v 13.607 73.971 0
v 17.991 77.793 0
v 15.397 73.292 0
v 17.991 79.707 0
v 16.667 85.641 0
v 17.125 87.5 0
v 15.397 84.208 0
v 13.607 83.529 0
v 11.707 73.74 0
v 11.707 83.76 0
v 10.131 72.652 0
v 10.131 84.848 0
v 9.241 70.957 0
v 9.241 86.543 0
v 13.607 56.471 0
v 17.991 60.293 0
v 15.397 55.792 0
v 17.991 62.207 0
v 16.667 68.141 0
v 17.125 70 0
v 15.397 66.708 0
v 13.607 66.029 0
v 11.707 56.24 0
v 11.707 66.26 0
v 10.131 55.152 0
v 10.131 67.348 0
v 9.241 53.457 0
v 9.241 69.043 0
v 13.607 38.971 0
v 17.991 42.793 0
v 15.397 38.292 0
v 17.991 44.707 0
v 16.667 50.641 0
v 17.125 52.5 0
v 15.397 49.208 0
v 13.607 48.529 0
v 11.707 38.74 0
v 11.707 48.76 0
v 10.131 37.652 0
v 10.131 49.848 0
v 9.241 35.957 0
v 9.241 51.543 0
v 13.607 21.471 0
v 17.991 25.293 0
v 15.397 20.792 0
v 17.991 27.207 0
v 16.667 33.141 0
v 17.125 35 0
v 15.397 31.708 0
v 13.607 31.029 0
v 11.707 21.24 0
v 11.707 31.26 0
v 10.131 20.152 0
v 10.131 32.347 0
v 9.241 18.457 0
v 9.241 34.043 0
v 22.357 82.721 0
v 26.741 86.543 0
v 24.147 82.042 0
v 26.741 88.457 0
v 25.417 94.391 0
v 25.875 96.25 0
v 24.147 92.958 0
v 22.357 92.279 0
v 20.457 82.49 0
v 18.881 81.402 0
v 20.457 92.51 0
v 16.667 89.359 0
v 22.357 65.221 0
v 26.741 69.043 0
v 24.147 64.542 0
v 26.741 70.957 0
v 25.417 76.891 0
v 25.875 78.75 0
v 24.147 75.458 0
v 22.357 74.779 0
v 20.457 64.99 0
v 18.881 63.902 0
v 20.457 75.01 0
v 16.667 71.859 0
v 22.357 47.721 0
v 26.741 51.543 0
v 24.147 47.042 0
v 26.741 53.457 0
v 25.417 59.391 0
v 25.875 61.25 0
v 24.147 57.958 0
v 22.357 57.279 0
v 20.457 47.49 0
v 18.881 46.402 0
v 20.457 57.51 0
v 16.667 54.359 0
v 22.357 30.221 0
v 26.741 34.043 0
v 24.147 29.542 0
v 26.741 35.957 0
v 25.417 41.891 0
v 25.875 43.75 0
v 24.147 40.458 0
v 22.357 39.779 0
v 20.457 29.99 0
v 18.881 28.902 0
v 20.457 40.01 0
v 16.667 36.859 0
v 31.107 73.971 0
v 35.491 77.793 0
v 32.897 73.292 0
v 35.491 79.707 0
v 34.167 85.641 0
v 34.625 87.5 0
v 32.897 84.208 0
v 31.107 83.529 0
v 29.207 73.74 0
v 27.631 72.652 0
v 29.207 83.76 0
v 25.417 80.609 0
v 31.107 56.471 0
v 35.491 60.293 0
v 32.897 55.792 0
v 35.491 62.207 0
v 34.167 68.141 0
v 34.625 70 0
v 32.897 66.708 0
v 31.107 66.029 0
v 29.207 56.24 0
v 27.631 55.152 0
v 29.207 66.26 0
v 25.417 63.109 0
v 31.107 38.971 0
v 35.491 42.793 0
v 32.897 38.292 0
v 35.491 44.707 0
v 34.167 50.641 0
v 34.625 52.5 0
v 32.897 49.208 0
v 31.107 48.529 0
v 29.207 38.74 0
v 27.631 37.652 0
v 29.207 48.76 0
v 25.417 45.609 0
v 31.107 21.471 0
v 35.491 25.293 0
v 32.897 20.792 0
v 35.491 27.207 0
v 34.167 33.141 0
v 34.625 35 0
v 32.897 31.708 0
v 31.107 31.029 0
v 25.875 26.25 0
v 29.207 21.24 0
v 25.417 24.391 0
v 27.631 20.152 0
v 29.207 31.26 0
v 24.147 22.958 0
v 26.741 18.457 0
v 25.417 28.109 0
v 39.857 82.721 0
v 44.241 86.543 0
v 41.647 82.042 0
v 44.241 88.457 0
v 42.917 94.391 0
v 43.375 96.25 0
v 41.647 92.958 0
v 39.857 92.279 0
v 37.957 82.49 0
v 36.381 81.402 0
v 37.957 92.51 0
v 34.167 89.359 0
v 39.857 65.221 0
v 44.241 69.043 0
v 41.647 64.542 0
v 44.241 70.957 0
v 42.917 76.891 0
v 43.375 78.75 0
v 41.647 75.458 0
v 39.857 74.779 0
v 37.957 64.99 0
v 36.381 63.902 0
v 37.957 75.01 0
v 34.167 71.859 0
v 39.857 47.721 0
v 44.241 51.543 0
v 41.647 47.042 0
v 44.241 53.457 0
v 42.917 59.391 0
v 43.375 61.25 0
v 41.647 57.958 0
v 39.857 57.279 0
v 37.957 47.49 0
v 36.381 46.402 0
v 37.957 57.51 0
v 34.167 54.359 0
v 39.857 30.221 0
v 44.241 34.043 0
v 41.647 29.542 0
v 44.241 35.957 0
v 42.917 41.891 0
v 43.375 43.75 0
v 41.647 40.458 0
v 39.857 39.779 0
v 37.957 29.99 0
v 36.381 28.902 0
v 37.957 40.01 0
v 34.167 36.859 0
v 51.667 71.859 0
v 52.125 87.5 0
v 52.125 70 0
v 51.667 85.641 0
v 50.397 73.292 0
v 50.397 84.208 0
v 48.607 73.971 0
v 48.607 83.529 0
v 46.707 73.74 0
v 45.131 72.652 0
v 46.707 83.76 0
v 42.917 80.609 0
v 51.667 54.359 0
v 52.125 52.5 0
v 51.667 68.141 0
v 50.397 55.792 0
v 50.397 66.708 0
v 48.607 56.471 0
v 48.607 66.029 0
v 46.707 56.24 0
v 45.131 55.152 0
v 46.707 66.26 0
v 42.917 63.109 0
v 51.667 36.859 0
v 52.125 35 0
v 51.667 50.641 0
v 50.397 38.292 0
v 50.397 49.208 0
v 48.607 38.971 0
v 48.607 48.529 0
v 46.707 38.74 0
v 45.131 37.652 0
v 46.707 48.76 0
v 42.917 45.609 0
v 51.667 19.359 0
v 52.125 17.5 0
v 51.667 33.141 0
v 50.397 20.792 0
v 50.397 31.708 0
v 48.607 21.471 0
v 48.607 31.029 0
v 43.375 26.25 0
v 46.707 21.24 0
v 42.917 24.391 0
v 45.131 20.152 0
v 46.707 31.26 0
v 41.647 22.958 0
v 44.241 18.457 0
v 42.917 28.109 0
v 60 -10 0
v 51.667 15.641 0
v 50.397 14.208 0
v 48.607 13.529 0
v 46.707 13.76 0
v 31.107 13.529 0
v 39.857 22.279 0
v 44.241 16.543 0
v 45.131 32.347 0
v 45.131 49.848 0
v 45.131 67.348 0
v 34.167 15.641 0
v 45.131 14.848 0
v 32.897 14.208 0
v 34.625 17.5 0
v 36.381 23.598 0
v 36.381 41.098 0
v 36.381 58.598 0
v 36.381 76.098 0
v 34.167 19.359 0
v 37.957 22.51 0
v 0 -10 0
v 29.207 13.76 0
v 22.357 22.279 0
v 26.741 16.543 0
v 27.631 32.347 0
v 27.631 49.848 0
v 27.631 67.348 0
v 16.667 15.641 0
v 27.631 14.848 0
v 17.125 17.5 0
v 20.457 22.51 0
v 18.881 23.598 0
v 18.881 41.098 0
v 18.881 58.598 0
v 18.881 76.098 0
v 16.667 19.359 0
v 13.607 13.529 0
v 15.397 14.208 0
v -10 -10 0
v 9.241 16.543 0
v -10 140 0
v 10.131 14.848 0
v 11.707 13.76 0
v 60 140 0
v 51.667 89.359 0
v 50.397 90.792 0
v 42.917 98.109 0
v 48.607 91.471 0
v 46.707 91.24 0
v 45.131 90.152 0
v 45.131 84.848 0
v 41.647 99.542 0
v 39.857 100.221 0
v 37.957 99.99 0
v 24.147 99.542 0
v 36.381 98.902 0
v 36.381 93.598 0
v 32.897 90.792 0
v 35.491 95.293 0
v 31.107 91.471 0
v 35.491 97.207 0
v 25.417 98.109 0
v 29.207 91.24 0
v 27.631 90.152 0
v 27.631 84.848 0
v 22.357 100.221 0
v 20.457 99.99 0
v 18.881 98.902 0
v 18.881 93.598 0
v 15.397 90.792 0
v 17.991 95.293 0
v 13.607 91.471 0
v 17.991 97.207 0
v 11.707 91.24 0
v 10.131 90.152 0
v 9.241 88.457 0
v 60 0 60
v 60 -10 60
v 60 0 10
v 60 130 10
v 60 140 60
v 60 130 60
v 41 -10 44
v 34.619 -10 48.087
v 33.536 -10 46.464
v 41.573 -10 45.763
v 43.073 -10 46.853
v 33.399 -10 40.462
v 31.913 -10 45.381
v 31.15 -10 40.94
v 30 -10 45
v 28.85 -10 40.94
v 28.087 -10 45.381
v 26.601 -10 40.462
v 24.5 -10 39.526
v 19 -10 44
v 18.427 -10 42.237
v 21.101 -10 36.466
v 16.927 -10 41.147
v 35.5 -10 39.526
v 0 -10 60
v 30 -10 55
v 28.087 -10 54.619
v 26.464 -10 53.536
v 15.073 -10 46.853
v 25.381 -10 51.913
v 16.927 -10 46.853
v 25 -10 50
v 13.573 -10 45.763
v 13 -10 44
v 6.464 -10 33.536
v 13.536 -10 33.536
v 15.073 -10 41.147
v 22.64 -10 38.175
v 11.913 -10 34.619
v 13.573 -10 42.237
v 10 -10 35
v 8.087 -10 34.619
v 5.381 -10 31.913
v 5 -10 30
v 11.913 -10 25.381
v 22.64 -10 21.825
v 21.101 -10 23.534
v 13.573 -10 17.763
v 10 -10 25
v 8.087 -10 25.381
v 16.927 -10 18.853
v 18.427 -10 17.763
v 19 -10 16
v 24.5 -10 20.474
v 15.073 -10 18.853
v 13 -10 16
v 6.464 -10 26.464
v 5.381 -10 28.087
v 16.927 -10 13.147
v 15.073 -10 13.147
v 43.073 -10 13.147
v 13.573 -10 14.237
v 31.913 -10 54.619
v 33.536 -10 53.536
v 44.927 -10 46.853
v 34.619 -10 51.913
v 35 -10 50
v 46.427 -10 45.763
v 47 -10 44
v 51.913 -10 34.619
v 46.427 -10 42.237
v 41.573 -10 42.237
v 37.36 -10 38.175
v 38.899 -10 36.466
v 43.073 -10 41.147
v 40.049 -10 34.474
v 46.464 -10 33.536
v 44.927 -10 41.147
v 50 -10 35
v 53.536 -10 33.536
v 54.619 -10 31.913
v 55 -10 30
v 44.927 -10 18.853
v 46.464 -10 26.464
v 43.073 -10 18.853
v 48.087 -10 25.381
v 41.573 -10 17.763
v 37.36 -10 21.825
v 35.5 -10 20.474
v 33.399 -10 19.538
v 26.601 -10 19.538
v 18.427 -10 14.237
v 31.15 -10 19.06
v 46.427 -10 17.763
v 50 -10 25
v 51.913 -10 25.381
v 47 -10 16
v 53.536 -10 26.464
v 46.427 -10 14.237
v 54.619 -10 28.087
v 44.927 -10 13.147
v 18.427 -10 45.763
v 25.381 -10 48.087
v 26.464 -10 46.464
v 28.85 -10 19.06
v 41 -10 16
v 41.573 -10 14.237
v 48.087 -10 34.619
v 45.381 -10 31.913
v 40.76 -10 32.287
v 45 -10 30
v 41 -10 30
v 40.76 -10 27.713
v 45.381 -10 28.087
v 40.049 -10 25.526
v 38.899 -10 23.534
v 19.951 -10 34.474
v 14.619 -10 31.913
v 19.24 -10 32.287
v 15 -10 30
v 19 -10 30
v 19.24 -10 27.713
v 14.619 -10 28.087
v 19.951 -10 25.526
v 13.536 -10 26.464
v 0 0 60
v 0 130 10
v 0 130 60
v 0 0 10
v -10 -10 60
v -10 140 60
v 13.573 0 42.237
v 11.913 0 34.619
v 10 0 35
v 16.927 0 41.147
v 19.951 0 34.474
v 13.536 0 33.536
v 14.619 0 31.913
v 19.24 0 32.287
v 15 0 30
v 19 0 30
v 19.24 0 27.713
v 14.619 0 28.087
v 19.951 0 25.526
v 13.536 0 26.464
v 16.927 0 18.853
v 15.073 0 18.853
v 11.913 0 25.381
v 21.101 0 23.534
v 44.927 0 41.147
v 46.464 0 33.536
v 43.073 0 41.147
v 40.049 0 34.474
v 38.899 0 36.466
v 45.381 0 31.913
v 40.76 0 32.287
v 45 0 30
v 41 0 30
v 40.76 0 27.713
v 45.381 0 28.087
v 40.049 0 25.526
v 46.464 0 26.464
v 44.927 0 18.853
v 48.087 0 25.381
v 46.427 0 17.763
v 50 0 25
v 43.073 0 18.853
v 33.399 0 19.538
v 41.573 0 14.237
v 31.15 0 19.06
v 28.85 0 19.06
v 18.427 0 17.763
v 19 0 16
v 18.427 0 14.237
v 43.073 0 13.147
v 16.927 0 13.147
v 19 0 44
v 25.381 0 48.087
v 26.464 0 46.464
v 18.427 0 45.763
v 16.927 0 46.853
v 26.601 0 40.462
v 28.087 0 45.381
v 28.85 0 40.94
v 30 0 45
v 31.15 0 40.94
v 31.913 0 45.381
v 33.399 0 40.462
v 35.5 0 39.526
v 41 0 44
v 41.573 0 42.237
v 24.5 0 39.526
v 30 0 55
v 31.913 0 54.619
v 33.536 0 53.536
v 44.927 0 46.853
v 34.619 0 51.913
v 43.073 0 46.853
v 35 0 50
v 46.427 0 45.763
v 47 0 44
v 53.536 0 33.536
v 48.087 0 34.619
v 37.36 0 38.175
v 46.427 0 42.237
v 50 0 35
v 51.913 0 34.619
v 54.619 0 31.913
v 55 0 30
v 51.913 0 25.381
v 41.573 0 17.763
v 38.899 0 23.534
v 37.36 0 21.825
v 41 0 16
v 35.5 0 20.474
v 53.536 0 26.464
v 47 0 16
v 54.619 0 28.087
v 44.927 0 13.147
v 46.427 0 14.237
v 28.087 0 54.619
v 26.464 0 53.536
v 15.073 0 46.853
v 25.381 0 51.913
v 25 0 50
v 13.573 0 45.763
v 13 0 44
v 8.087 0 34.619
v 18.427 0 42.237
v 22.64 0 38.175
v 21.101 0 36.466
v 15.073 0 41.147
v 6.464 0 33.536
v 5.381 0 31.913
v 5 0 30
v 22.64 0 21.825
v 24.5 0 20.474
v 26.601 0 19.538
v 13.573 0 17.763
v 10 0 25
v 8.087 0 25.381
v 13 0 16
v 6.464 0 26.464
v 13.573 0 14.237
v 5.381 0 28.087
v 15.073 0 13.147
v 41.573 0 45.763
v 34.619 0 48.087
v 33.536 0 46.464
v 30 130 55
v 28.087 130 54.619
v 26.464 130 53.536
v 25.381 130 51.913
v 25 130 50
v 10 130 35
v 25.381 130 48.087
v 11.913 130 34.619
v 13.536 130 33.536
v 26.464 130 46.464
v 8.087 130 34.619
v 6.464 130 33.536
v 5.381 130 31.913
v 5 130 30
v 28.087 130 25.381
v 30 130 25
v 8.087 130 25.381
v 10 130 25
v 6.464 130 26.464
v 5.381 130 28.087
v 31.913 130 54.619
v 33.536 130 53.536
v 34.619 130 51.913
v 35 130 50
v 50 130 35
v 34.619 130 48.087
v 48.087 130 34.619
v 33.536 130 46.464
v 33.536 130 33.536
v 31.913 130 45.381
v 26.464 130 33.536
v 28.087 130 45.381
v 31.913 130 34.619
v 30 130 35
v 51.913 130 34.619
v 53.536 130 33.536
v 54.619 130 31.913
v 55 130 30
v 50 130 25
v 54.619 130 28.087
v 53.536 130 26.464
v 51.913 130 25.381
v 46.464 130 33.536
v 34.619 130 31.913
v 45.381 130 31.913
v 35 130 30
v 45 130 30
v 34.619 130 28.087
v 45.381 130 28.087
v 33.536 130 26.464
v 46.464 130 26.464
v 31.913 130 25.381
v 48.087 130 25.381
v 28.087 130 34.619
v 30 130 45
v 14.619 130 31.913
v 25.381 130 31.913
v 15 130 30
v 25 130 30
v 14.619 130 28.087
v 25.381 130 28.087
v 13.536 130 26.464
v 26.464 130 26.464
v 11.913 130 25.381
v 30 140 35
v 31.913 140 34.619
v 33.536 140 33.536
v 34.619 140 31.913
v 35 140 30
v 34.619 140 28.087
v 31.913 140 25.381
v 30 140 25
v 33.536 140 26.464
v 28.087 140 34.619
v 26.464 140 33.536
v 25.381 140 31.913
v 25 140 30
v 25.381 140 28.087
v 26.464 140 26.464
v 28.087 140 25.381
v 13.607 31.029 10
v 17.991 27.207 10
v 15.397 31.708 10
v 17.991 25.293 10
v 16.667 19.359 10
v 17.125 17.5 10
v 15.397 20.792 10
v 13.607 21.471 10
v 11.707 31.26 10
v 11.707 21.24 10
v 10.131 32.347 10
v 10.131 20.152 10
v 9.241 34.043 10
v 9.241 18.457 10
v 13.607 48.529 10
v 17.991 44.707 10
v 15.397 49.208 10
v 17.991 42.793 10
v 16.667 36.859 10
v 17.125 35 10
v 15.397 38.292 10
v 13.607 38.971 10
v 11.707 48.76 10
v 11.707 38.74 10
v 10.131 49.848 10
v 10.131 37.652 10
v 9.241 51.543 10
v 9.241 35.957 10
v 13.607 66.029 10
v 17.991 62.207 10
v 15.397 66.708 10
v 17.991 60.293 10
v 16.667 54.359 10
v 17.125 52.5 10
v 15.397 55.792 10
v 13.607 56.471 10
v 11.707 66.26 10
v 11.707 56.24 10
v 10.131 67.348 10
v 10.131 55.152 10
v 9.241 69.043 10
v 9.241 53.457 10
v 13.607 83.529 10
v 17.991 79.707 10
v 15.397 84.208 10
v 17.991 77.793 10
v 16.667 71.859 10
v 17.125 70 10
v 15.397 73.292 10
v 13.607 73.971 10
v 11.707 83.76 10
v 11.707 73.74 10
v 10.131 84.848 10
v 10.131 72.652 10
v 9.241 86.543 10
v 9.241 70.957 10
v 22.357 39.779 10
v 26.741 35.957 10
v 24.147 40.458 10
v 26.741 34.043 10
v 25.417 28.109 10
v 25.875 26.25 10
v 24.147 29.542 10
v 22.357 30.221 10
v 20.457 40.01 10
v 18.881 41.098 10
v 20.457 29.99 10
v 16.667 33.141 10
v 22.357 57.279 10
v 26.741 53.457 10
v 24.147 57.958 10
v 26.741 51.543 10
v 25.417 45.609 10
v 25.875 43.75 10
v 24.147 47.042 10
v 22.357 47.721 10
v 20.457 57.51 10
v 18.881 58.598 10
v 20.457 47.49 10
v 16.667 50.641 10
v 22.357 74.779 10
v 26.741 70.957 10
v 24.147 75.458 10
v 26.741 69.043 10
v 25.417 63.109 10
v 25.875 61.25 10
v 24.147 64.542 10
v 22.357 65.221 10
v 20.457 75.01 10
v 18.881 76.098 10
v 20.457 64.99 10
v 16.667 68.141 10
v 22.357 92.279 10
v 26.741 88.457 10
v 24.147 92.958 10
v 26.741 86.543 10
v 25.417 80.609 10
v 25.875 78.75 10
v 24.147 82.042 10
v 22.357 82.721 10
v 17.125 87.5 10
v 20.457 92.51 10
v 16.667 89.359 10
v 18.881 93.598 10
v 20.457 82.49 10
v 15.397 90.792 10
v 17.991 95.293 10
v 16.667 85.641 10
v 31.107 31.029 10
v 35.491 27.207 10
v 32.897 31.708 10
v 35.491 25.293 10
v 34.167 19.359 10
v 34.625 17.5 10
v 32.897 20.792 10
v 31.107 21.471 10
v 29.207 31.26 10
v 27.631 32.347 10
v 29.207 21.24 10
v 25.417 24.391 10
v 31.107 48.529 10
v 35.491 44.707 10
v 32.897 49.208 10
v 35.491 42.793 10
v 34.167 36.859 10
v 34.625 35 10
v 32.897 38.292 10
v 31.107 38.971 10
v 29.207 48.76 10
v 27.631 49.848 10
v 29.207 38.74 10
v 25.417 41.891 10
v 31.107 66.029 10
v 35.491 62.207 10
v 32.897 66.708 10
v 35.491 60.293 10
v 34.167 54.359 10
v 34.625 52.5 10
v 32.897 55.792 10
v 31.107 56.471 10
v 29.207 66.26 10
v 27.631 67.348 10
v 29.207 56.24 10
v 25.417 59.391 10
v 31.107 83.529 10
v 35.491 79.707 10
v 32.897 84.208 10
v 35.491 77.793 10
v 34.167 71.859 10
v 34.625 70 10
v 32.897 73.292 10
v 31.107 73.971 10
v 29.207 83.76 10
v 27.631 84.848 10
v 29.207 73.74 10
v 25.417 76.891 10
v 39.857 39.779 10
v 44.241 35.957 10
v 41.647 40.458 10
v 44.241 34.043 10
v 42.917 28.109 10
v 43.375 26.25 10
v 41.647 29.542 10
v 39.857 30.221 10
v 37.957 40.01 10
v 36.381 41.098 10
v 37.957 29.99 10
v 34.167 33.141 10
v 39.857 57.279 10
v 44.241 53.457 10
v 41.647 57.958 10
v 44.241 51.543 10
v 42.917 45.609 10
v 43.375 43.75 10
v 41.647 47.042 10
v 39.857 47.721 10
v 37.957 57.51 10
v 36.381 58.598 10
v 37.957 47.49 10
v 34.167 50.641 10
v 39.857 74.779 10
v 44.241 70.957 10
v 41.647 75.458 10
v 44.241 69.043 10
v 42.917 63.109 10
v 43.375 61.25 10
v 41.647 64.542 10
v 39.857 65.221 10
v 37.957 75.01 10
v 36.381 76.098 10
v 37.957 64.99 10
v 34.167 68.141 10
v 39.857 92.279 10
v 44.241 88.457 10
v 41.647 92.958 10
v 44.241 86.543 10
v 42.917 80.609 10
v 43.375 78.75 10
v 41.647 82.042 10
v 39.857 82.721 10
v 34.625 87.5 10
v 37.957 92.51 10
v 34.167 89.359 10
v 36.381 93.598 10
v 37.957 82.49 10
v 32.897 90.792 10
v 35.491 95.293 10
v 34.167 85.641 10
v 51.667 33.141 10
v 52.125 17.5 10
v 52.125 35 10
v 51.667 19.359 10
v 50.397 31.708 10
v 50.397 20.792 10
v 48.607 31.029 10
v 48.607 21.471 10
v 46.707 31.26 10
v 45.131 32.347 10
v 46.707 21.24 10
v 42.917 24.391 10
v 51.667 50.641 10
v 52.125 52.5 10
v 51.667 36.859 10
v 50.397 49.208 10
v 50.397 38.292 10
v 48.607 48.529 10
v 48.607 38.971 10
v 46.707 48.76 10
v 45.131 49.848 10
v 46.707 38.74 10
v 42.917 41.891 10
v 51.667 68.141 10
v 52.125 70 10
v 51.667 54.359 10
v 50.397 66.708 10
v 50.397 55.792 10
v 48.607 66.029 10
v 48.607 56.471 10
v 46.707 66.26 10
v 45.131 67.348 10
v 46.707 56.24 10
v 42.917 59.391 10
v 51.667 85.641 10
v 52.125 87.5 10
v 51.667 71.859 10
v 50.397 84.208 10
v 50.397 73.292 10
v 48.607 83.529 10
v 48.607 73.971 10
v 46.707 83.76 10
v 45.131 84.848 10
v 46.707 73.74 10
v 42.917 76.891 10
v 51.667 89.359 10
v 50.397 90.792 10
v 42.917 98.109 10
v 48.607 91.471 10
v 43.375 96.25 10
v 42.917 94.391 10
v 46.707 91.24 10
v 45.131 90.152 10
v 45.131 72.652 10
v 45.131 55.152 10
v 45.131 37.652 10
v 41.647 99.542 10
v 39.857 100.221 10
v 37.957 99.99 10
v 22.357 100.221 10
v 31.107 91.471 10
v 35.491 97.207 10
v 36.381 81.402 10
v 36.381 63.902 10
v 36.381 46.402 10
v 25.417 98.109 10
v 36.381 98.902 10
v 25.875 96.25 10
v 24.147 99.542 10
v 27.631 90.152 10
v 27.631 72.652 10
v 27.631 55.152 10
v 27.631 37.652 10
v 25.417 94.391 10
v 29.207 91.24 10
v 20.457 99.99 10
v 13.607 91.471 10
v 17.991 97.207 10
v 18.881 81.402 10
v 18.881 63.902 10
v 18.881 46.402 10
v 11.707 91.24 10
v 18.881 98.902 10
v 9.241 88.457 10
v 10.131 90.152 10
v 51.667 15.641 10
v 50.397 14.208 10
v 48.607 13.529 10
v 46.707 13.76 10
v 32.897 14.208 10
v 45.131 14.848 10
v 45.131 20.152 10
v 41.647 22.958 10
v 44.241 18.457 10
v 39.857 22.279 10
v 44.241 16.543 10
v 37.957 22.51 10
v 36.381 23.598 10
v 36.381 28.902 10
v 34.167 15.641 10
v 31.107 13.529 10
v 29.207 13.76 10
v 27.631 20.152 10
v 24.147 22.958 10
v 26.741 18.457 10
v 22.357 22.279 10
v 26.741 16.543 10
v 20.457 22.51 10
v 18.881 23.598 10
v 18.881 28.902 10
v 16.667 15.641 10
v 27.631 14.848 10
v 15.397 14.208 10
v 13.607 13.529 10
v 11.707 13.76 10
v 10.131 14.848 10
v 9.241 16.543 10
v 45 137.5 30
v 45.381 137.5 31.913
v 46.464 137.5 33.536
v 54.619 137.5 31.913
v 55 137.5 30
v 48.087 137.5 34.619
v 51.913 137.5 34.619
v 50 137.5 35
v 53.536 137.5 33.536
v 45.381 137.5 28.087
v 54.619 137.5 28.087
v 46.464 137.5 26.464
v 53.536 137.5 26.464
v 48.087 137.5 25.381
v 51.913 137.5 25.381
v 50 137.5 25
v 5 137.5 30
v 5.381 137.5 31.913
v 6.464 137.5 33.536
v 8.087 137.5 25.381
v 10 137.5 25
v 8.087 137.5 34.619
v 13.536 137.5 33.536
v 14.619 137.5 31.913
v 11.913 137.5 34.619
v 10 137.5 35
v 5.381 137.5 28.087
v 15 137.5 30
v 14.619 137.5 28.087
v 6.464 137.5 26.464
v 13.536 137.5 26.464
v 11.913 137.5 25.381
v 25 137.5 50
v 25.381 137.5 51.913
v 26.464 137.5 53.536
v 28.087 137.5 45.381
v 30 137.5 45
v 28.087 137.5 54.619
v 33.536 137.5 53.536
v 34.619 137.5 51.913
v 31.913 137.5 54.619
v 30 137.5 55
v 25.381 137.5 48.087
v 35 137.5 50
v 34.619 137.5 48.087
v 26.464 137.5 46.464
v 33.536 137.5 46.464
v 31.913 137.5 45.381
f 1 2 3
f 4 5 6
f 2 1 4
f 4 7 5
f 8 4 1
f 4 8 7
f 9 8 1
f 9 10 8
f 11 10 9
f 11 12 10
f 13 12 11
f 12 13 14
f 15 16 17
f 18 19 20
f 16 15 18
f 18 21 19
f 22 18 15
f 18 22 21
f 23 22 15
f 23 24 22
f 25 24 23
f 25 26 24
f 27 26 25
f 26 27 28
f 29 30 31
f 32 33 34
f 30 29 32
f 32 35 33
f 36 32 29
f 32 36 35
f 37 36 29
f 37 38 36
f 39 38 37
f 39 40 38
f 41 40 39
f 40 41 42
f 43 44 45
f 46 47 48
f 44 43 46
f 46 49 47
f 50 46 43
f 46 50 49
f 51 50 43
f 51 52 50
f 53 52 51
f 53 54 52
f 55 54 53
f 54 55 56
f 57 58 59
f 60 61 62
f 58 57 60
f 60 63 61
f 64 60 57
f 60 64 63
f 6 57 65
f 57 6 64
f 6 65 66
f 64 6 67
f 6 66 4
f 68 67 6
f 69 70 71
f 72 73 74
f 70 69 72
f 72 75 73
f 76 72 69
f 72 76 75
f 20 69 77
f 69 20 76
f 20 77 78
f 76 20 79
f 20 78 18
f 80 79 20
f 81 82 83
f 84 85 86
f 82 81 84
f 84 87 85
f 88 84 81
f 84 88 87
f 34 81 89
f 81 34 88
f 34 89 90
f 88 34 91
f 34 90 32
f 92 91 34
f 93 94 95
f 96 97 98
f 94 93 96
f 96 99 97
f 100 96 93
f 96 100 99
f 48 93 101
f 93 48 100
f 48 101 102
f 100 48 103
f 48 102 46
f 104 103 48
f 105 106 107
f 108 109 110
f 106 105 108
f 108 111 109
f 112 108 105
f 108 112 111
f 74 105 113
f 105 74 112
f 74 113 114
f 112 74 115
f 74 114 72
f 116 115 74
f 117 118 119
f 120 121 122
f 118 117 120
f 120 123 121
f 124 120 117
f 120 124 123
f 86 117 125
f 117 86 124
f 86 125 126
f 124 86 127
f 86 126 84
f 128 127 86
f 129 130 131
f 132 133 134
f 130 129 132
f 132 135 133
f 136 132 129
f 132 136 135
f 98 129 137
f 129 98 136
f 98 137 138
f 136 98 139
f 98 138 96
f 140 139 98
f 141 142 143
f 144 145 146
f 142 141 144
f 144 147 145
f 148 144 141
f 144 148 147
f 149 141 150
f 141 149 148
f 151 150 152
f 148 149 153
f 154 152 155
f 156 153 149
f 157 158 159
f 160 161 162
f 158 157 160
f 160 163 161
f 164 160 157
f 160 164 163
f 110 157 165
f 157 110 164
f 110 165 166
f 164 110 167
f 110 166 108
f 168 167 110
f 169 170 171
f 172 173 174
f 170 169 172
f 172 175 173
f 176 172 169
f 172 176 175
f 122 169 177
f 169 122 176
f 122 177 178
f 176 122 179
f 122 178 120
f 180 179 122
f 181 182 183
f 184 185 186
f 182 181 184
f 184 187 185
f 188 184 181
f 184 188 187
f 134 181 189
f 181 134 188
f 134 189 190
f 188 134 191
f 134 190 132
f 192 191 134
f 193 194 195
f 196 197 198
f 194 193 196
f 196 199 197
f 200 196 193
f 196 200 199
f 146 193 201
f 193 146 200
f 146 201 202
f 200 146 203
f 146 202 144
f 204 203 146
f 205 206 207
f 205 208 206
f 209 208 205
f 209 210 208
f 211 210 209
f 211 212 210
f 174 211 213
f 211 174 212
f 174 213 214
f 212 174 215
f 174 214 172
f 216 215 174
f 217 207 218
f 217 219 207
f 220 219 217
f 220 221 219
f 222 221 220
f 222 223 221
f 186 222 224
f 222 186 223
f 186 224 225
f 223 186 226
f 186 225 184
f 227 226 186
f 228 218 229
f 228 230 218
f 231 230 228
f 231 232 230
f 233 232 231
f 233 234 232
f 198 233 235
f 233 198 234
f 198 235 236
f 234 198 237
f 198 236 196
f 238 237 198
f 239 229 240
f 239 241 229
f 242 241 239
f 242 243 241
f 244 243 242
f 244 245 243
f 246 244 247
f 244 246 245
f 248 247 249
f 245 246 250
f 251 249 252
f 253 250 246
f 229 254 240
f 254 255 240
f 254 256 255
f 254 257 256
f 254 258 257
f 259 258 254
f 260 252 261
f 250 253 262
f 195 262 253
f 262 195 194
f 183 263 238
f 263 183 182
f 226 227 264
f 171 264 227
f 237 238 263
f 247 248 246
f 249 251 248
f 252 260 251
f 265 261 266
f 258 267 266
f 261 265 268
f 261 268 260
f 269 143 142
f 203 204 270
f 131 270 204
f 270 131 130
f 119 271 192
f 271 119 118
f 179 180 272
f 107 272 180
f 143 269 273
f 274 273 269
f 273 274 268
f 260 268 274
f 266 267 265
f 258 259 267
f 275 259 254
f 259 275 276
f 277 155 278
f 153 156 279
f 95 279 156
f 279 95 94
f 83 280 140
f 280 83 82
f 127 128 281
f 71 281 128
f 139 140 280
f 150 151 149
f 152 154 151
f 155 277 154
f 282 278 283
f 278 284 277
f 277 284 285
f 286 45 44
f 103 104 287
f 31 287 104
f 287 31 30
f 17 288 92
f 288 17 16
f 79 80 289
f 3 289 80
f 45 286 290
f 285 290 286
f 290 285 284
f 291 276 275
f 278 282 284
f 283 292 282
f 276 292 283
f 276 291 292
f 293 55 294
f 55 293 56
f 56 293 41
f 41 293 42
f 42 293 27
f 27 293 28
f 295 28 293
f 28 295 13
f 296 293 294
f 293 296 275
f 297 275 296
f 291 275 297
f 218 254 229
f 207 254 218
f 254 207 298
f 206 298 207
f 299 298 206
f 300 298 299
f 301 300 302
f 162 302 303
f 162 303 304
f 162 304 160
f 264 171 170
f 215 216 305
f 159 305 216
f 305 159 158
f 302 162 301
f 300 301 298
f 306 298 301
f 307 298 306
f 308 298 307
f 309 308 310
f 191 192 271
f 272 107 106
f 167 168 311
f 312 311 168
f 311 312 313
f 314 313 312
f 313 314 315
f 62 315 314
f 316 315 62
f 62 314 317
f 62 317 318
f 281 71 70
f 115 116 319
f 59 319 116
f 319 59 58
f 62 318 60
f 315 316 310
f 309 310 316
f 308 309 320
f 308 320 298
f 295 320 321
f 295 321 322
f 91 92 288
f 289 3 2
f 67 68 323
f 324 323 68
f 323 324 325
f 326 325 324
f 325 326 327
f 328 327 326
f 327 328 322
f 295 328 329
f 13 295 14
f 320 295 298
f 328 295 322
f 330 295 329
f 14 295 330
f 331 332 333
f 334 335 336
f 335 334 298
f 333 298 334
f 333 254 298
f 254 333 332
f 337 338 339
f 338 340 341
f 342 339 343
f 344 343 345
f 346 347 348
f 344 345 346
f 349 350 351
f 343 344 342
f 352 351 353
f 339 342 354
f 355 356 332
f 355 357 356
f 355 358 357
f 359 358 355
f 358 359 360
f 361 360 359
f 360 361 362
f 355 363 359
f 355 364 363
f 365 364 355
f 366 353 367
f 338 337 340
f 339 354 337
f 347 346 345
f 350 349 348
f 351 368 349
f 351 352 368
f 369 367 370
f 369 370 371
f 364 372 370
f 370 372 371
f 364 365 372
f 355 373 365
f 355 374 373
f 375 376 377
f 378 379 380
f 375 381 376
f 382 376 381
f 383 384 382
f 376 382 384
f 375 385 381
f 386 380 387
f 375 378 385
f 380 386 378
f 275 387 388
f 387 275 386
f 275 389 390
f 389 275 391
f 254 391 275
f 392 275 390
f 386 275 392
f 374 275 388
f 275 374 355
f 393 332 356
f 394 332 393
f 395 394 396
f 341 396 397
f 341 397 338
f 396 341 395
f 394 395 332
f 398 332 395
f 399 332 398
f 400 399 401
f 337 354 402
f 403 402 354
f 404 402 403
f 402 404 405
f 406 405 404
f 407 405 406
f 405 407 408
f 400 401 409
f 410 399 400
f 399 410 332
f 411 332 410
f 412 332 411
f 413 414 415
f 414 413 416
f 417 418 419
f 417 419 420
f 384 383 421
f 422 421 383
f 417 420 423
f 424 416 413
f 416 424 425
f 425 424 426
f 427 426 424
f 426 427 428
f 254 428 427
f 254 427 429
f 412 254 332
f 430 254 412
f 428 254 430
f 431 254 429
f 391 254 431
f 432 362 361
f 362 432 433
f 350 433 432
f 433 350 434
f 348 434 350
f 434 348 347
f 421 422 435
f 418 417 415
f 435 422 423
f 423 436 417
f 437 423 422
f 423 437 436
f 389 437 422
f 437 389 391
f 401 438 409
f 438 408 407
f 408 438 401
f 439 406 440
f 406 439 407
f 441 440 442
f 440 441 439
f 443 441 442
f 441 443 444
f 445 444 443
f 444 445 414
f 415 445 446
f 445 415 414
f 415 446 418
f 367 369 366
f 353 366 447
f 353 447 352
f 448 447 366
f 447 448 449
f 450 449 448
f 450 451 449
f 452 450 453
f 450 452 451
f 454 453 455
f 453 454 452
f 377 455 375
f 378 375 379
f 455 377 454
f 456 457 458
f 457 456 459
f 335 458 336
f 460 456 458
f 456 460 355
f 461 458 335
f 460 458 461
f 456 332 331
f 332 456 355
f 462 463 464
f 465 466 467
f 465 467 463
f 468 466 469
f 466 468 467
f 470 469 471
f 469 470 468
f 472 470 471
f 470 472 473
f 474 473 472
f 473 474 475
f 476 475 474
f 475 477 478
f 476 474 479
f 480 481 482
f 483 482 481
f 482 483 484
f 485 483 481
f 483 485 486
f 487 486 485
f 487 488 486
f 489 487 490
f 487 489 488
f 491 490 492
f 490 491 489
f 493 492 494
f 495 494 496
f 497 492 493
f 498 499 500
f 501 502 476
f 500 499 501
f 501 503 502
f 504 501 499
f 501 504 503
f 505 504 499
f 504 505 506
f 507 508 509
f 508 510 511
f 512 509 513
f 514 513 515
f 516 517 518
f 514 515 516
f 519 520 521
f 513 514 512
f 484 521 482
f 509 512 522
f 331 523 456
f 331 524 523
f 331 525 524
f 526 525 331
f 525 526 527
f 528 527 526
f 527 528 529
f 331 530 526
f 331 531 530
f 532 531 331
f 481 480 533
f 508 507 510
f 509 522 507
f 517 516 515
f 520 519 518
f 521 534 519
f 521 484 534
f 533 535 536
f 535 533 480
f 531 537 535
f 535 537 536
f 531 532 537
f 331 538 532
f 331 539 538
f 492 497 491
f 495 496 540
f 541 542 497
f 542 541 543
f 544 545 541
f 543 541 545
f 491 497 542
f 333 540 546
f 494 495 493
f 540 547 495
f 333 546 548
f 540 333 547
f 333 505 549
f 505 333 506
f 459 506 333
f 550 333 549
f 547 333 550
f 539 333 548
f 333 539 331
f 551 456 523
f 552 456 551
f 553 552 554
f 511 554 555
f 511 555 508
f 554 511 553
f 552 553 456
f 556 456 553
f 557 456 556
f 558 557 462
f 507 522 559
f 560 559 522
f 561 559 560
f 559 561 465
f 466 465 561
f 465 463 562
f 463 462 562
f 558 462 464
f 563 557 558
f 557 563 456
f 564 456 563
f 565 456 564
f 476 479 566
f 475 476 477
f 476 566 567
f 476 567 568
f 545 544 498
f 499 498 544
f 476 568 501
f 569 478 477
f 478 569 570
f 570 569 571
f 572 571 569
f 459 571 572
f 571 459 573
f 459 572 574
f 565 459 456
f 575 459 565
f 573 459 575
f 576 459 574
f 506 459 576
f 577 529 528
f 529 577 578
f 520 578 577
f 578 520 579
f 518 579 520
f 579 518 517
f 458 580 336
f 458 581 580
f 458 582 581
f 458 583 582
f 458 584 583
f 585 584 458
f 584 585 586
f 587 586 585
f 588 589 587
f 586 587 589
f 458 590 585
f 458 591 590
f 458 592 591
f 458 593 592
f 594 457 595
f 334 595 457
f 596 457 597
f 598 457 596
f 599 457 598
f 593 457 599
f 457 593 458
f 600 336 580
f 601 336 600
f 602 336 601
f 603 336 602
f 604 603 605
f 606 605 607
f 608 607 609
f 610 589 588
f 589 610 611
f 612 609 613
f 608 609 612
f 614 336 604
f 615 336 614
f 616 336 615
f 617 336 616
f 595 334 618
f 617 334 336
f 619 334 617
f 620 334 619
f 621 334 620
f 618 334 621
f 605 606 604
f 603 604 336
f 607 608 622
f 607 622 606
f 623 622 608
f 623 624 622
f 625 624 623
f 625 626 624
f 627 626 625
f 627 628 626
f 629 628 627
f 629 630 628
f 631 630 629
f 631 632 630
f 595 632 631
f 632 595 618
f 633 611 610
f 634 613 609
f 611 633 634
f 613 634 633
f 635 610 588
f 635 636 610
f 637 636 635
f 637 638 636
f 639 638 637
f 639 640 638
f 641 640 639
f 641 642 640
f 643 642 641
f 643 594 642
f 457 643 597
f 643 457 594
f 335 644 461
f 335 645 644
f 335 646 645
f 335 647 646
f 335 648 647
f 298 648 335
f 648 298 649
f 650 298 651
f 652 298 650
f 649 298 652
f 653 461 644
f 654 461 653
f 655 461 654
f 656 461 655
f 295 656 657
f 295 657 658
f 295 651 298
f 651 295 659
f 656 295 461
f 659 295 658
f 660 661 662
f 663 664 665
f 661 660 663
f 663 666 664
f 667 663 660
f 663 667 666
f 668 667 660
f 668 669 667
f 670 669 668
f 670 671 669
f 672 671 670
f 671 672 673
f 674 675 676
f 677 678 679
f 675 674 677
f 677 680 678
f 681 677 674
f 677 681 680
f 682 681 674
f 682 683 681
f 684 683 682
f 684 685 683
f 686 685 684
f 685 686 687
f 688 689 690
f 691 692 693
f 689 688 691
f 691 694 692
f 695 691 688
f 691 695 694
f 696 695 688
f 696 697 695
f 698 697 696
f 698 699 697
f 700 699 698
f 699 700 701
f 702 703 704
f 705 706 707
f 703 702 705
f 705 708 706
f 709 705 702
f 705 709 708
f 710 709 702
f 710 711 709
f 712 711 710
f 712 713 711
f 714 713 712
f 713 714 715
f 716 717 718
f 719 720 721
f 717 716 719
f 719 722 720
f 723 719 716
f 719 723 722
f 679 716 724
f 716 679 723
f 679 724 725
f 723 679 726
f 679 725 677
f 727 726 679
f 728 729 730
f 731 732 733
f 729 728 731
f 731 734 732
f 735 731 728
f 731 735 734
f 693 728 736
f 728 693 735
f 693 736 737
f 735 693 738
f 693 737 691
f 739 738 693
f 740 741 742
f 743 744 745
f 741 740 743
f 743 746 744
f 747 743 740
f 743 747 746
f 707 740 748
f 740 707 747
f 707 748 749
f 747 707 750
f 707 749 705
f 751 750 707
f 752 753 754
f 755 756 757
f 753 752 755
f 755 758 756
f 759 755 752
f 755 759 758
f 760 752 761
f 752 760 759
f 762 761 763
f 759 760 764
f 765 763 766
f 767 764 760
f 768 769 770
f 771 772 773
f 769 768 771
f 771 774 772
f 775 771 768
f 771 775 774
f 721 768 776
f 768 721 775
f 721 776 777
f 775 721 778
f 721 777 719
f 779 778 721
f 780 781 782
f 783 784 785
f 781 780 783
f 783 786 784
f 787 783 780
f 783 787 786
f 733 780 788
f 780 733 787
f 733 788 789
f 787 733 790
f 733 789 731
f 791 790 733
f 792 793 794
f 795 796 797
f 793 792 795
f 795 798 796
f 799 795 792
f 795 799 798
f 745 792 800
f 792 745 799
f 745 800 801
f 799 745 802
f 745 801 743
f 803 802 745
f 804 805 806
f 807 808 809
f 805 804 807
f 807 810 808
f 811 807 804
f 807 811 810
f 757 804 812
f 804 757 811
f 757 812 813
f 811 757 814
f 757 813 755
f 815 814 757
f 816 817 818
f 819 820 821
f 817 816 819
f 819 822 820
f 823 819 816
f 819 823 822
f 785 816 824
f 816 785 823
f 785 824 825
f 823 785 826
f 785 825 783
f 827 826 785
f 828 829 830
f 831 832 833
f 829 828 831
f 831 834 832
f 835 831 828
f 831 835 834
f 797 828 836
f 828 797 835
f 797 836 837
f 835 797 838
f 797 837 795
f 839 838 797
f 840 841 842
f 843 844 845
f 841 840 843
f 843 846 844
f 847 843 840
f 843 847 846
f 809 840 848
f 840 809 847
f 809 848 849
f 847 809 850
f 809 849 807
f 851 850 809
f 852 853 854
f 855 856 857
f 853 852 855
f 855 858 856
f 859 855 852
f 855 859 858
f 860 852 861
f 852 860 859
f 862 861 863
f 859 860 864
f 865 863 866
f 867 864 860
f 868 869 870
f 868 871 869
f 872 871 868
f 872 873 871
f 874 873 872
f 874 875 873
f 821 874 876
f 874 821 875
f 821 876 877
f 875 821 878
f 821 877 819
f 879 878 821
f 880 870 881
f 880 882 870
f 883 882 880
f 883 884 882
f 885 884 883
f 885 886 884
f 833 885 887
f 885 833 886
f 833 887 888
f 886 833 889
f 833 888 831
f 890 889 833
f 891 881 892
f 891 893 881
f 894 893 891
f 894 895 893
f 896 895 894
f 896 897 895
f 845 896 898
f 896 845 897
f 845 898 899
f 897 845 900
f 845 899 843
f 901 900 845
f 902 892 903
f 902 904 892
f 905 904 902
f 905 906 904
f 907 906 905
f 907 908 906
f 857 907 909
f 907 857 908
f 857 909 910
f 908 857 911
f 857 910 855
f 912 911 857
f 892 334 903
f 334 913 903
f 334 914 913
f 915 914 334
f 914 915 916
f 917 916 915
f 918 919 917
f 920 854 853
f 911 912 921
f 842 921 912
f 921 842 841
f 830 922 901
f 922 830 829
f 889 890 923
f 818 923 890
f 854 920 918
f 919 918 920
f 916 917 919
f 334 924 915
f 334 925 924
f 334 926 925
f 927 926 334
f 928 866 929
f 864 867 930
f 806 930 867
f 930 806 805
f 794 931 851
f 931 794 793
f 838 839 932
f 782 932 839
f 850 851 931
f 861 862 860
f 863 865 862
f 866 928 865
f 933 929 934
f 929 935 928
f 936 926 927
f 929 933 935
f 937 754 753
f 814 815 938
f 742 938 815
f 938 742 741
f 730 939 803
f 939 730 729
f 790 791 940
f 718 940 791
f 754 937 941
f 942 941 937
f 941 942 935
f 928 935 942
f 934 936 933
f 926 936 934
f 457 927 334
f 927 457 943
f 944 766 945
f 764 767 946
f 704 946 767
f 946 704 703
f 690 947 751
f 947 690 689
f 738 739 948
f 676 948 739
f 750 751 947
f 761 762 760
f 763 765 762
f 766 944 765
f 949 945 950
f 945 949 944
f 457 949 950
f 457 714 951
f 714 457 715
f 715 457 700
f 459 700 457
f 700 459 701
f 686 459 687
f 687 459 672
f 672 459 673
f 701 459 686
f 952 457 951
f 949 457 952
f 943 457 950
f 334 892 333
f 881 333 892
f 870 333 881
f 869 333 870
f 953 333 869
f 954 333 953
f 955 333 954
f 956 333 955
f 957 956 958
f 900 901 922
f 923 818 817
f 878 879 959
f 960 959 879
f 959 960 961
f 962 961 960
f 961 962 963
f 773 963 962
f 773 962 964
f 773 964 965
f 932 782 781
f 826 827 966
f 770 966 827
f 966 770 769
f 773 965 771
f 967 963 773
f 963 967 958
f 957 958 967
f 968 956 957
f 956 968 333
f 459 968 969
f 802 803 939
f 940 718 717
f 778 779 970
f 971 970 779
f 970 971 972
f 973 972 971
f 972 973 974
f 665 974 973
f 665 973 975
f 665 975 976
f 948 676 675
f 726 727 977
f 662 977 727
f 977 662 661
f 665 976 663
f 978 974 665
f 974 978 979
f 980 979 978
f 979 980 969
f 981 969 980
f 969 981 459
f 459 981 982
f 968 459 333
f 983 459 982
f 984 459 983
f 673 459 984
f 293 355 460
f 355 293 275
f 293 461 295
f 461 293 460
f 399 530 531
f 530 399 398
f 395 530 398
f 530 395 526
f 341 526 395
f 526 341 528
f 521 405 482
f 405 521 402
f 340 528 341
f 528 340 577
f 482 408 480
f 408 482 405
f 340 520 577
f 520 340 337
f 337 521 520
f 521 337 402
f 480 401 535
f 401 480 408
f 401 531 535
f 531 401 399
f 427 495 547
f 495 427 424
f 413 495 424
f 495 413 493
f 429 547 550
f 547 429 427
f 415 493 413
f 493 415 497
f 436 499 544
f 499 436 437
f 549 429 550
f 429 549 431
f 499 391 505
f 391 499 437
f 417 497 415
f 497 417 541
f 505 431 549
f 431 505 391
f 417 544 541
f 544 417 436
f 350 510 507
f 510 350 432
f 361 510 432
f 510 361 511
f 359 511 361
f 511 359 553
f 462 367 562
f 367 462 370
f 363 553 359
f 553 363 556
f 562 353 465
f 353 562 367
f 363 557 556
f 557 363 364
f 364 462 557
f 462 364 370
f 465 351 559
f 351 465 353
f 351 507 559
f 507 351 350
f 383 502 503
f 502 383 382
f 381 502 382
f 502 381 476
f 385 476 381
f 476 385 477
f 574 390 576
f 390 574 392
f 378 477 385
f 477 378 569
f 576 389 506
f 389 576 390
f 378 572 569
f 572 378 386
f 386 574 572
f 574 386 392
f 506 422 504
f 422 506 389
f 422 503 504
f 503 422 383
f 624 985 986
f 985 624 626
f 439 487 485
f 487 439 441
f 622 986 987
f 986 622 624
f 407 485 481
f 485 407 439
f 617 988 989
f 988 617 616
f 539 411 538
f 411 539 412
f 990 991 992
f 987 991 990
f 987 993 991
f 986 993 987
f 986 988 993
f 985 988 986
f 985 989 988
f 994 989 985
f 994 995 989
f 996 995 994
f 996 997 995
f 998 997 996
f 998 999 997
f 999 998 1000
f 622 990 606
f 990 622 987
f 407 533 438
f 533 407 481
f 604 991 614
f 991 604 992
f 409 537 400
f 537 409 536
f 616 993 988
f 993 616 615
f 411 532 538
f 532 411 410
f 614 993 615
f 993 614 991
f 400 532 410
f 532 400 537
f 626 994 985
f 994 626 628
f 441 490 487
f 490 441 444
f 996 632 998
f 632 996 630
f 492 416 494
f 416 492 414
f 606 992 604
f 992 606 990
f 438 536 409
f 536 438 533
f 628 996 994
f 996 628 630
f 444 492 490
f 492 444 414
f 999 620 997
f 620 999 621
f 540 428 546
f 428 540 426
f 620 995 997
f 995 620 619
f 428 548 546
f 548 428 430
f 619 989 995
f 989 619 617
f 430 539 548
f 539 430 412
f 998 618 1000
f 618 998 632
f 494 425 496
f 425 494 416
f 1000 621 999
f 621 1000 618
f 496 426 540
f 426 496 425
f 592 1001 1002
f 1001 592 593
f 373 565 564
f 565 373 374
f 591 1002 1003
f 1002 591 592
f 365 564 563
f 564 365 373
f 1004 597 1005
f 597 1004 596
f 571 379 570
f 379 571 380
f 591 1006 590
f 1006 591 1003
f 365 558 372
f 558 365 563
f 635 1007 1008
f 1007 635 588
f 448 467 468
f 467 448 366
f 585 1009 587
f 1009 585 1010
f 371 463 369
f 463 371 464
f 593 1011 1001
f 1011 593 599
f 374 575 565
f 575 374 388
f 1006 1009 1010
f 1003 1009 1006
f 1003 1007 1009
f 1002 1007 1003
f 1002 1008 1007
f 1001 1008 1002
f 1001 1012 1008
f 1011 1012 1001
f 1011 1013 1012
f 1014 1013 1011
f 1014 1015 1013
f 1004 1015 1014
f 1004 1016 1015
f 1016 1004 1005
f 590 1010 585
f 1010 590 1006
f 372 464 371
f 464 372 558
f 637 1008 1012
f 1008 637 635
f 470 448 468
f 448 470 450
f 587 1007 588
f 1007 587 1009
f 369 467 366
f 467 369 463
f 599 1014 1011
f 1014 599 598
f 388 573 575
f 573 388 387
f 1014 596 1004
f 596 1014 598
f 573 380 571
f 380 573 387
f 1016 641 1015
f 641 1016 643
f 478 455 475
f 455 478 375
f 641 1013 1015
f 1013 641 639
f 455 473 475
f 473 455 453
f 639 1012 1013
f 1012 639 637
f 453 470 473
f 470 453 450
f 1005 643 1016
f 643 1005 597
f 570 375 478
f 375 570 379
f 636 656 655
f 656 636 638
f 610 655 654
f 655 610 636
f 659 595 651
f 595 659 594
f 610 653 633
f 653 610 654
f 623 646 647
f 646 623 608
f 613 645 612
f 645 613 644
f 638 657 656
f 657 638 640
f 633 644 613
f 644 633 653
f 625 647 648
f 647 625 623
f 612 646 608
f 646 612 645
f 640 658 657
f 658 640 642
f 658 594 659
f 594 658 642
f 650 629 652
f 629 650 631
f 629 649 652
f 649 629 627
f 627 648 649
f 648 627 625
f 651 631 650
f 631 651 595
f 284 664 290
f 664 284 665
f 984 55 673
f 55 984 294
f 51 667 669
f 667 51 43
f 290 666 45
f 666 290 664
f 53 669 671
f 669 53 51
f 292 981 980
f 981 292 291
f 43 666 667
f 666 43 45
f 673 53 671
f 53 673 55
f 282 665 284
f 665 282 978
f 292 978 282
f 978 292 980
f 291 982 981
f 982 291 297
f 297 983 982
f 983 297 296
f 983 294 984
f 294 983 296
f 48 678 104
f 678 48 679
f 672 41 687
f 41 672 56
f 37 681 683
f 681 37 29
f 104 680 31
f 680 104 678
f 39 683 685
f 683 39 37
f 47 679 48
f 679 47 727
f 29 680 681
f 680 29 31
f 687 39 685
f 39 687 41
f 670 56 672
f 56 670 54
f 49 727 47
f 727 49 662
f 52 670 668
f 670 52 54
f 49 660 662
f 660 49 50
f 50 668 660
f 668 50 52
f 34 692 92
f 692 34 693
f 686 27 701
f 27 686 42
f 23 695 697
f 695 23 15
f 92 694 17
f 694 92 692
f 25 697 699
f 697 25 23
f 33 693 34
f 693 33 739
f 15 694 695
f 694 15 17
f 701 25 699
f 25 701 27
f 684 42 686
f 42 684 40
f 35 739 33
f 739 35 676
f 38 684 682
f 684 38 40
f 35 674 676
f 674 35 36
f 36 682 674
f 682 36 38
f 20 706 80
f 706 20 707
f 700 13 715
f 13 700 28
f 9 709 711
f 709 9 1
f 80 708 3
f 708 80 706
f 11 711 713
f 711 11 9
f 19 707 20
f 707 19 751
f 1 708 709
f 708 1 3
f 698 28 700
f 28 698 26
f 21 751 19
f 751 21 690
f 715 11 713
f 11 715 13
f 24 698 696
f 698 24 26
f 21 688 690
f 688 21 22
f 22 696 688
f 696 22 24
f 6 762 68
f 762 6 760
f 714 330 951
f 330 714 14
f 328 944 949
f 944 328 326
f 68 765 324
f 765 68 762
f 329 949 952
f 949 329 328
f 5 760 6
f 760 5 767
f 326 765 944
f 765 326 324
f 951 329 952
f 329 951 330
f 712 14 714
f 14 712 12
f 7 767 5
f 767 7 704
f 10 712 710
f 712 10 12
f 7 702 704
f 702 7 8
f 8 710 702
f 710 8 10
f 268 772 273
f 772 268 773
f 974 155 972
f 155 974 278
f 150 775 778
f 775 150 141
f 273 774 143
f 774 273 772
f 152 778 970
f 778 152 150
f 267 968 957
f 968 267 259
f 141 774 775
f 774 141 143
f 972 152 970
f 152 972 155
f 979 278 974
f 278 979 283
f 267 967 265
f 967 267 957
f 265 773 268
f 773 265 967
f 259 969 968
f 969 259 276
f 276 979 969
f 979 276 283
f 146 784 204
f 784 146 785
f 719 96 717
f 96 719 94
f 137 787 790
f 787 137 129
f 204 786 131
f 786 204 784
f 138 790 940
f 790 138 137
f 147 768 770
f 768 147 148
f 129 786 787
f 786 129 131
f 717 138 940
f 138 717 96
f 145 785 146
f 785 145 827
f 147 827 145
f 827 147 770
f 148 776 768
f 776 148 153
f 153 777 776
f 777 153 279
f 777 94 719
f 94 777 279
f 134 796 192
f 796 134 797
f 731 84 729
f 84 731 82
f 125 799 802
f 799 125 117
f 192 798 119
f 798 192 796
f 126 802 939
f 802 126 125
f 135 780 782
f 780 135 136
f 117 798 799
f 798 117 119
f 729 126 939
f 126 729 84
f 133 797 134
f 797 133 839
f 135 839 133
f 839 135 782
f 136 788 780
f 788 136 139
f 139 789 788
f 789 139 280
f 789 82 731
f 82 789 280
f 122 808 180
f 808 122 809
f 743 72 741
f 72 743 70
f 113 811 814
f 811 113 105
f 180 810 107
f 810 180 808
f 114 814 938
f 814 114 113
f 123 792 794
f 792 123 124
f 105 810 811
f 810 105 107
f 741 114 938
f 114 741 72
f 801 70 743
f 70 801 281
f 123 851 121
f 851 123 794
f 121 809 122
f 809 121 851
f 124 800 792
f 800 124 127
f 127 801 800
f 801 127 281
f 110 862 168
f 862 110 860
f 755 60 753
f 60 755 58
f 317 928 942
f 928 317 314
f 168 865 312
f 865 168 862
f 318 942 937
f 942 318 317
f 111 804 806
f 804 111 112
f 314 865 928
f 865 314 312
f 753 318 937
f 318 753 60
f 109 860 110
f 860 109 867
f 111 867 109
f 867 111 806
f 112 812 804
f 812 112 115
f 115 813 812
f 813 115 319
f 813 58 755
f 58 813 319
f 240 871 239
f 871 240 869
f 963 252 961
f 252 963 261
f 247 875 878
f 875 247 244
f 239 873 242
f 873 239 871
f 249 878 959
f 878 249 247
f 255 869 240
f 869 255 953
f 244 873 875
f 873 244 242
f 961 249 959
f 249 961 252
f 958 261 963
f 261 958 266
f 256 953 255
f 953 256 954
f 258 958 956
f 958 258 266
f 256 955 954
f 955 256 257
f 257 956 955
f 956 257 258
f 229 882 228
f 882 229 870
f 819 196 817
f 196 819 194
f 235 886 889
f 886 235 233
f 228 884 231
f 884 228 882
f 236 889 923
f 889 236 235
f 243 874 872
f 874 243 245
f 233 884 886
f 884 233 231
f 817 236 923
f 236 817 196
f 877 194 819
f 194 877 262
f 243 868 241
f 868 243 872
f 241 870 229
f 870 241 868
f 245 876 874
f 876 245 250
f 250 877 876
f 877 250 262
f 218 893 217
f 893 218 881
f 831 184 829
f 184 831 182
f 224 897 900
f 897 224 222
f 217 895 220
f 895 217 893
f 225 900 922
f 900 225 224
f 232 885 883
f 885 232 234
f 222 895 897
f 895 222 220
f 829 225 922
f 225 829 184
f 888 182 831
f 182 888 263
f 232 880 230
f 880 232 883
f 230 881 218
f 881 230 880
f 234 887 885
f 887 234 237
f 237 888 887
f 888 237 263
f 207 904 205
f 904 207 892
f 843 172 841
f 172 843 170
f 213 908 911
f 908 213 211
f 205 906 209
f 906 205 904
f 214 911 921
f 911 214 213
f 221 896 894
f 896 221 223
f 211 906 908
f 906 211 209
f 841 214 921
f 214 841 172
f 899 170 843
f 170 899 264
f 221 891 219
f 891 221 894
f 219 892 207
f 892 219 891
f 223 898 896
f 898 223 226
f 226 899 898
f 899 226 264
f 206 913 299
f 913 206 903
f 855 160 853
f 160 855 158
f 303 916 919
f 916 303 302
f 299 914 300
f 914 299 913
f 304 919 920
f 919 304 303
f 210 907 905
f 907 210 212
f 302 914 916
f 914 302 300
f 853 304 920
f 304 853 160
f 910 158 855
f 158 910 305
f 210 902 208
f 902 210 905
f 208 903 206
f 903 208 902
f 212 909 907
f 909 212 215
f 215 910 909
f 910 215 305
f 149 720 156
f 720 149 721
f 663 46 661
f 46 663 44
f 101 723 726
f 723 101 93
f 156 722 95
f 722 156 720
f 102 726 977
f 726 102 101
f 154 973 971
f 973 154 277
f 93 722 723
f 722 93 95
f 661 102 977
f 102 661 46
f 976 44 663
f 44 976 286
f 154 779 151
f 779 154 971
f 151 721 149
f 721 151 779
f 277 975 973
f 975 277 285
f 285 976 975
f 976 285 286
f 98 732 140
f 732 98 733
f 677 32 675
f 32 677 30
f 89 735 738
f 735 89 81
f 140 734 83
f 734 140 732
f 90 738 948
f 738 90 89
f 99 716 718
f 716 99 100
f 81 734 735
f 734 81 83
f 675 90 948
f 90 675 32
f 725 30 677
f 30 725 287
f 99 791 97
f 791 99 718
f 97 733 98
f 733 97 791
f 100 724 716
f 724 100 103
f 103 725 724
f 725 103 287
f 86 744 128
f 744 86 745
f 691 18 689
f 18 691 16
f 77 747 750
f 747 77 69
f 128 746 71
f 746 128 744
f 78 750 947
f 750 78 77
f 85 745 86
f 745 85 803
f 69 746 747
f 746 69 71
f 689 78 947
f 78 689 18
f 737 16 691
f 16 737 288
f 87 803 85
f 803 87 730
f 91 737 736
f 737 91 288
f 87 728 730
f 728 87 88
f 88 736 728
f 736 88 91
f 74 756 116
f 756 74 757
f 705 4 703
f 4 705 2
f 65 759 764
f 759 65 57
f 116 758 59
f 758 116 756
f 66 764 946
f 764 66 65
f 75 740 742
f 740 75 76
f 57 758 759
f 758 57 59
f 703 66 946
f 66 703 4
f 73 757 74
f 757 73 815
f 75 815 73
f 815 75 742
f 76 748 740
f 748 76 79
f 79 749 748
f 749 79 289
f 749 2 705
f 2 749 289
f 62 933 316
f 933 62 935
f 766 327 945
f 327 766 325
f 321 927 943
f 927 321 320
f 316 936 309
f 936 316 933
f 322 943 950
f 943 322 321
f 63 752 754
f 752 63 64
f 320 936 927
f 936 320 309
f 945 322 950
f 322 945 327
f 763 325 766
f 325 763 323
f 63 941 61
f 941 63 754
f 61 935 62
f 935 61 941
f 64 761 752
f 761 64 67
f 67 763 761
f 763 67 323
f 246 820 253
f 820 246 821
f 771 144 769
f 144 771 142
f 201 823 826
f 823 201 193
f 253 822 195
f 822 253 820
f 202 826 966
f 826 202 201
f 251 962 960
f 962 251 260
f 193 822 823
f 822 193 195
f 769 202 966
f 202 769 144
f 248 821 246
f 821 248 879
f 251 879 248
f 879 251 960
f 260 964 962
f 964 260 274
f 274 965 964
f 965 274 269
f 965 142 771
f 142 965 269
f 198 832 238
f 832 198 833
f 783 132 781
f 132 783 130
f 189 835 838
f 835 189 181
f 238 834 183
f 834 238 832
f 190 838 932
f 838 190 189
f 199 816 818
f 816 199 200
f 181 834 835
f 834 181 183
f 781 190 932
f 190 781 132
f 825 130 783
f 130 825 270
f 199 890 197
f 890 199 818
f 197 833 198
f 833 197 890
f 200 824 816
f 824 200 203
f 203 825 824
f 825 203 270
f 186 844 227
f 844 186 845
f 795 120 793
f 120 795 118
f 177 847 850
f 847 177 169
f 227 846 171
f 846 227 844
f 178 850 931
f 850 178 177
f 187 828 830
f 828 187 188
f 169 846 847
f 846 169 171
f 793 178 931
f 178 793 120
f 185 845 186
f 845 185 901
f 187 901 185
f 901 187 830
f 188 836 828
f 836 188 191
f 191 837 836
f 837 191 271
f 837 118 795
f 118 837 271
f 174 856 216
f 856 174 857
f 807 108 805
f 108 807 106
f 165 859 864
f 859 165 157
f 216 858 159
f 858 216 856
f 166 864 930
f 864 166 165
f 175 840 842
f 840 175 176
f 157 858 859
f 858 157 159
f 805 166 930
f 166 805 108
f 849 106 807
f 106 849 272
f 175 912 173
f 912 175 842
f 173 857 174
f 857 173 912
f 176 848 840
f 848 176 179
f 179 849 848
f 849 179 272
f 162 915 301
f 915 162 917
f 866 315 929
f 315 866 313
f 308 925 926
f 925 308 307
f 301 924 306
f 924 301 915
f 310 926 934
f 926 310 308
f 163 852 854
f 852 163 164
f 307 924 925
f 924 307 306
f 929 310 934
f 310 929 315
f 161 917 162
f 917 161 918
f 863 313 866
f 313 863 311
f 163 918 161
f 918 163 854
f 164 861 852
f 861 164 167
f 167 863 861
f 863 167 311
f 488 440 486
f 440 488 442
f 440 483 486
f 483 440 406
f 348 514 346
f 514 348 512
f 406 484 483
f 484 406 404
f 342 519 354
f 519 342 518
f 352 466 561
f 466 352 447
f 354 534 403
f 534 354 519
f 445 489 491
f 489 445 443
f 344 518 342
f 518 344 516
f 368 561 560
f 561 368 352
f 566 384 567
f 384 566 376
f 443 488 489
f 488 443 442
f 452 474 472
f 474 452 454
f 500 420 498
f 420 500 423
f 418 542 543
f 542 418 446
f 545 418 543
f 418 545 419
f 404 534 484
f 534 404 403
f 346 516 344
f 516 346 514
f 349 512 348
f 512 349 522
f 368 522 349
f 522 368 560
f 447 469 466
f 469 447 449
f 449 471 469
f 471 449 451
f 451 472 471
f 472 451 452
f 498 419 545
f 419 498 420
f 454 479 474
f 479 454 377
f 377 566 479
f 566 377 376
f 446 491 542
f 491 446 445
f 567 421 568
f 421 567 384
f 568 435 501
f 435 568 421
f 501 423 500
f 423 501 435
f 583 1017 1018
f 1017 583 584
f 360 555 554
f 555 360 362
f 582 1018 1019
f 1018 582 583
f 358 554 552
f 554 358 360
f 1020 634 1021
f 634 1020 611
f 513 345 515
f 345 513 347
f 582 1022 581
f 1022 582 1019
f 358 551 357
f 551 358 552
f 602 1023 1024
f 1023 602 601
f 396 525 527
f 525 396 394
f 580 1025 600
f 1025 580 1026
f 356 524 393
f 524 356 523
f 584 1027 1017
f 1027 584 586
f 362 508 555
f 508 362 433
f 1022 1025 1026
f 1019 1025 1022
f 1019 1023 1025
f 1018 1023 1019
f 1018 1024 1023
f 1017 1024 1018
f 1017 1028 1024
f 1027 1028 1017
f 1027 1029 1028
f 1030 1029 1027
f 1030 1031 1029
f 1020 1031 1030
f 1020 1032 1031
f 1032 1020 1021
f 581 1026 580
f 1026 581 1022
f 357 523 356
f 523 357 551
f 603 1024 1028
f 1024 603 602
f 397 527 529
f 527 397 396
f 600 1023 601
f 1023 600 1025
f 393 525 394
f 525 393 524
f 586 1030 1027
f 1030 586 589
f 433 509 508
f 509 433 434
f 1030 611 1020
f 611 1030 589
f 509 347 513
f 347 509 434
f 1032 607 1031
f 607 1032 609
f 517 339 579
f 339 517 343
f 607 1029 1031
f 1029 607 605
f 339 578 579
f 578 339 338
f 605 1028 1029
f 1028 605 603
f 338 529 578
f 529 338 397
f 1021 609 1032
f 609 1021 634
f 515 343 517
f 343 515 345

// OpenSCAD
/* 
A syring pump
Drafted on August 21, 2019 
By Jessica Snyder
*/

base_width = 60;
base_length = 140;
base_height = 10;

motor_mount_hole = 22; // Measured hole of the motor mounting - mm
motor_screw = 6; // Measured hole of the motor screws - mm
motor_screw_pattern = 28; // Measured hole of the motor srew pattern diameter - mm
guide_rod_diameter = 10; // Measured diameter of the guide rod
guide_rod_pattern = 40; // Design the guide rod pattern diameter

screw_exit_hole = 10; // Measured hole of the motor mounting - mm
mounting_hole = 8; // Measured hole to mount to printer - mm
mounting_hole_spacing = 35; // Measured hole to mount to printer - mm

difference(){

union(){
cube([base_width, base_length, base_height]);
rotate([0,90,0])  
translate([-base_width, -base_height, -base_height])  
cube([base_width, base_length+base_height, base_height]);

for ( i = [0,base_length]) {
translate([0,i,0])  
rotate([90,0,0])
cube([base_width, base_width, base_height]);
}
}

    // Hole for the motor mount - base
    translate([base_width/2, base_width/8, base_width/2])
    rotate([90,0,0])
    cylinder(h = 2*base_height, r=motor_mount_hole/2); 

    // Hole for the motor mount - screws
    for ( i = [motor_screw_pattern/2, -motor_screw_pattern/2]) {
        for ( j = [motor_screw_pattern/2, -motor_screw_pattern/2]) {
    translate([base_width/2+i, base_width/8, base_width/2+j])
    rotate([90,0,0])
    cylinder(h = 2*base_height, r=motor_screw/2); 
        }}
        
        
     // Hole for the guide rod
    for ( i = [guide_rod_pattern/2, -guide_rod_pattern/2, 0, 0]) {
         translate([base_width/2+i, -base_width*3/8, base_width/2])
        rotate([90,0,180])
        cylinder(h = 2*base_height + base_length, r=guide_rod_diameter/2); 
        }
        
    for ( i = [guide_rod_pattern/2]) {
         translate([base_width/2, -base_width*3/8, base_width/2+i])
        rotate([90,0,180])
        cylinder(h = 2*base_height + base_length, r=guide_rod_diameter/2); 
        }
    

    // Hole for the lead screw to exit
    translate([base_width/2,  base_length+base_width/8, base_width/2])
    rotate([90,0,0])
    cylinder(h = 2*base_height, r=screw_exit_hole/2); 

    // Hole for attachment to the printer
    for ( i = [1:3]) {
        for ( j = [1:5]) {
    translate([-mounting_hole_spacing/8+mounting_hole_spacing/2*i,  mounting_hole_spacing/2*j, -base_width/8])
    rotate([0,0,0])
    cylinder(h = 2*base_height, r=mounting_hole/2); 
    }}
    
    for ( i = [1:2]) {
        for ( j = [1:5]) {
    translate([-mounting_hole_spacing/8+mounting_hole_spacing/4+mounting_hole_spacing/2*i, mounting_hole_spacing/4+ mounting_hole_spacing/2*j, -base_width/8])
    rotate([0,0,0])
    cylinder(h = 2*base_height, r=mounting_hole/2); 
    }}


}
